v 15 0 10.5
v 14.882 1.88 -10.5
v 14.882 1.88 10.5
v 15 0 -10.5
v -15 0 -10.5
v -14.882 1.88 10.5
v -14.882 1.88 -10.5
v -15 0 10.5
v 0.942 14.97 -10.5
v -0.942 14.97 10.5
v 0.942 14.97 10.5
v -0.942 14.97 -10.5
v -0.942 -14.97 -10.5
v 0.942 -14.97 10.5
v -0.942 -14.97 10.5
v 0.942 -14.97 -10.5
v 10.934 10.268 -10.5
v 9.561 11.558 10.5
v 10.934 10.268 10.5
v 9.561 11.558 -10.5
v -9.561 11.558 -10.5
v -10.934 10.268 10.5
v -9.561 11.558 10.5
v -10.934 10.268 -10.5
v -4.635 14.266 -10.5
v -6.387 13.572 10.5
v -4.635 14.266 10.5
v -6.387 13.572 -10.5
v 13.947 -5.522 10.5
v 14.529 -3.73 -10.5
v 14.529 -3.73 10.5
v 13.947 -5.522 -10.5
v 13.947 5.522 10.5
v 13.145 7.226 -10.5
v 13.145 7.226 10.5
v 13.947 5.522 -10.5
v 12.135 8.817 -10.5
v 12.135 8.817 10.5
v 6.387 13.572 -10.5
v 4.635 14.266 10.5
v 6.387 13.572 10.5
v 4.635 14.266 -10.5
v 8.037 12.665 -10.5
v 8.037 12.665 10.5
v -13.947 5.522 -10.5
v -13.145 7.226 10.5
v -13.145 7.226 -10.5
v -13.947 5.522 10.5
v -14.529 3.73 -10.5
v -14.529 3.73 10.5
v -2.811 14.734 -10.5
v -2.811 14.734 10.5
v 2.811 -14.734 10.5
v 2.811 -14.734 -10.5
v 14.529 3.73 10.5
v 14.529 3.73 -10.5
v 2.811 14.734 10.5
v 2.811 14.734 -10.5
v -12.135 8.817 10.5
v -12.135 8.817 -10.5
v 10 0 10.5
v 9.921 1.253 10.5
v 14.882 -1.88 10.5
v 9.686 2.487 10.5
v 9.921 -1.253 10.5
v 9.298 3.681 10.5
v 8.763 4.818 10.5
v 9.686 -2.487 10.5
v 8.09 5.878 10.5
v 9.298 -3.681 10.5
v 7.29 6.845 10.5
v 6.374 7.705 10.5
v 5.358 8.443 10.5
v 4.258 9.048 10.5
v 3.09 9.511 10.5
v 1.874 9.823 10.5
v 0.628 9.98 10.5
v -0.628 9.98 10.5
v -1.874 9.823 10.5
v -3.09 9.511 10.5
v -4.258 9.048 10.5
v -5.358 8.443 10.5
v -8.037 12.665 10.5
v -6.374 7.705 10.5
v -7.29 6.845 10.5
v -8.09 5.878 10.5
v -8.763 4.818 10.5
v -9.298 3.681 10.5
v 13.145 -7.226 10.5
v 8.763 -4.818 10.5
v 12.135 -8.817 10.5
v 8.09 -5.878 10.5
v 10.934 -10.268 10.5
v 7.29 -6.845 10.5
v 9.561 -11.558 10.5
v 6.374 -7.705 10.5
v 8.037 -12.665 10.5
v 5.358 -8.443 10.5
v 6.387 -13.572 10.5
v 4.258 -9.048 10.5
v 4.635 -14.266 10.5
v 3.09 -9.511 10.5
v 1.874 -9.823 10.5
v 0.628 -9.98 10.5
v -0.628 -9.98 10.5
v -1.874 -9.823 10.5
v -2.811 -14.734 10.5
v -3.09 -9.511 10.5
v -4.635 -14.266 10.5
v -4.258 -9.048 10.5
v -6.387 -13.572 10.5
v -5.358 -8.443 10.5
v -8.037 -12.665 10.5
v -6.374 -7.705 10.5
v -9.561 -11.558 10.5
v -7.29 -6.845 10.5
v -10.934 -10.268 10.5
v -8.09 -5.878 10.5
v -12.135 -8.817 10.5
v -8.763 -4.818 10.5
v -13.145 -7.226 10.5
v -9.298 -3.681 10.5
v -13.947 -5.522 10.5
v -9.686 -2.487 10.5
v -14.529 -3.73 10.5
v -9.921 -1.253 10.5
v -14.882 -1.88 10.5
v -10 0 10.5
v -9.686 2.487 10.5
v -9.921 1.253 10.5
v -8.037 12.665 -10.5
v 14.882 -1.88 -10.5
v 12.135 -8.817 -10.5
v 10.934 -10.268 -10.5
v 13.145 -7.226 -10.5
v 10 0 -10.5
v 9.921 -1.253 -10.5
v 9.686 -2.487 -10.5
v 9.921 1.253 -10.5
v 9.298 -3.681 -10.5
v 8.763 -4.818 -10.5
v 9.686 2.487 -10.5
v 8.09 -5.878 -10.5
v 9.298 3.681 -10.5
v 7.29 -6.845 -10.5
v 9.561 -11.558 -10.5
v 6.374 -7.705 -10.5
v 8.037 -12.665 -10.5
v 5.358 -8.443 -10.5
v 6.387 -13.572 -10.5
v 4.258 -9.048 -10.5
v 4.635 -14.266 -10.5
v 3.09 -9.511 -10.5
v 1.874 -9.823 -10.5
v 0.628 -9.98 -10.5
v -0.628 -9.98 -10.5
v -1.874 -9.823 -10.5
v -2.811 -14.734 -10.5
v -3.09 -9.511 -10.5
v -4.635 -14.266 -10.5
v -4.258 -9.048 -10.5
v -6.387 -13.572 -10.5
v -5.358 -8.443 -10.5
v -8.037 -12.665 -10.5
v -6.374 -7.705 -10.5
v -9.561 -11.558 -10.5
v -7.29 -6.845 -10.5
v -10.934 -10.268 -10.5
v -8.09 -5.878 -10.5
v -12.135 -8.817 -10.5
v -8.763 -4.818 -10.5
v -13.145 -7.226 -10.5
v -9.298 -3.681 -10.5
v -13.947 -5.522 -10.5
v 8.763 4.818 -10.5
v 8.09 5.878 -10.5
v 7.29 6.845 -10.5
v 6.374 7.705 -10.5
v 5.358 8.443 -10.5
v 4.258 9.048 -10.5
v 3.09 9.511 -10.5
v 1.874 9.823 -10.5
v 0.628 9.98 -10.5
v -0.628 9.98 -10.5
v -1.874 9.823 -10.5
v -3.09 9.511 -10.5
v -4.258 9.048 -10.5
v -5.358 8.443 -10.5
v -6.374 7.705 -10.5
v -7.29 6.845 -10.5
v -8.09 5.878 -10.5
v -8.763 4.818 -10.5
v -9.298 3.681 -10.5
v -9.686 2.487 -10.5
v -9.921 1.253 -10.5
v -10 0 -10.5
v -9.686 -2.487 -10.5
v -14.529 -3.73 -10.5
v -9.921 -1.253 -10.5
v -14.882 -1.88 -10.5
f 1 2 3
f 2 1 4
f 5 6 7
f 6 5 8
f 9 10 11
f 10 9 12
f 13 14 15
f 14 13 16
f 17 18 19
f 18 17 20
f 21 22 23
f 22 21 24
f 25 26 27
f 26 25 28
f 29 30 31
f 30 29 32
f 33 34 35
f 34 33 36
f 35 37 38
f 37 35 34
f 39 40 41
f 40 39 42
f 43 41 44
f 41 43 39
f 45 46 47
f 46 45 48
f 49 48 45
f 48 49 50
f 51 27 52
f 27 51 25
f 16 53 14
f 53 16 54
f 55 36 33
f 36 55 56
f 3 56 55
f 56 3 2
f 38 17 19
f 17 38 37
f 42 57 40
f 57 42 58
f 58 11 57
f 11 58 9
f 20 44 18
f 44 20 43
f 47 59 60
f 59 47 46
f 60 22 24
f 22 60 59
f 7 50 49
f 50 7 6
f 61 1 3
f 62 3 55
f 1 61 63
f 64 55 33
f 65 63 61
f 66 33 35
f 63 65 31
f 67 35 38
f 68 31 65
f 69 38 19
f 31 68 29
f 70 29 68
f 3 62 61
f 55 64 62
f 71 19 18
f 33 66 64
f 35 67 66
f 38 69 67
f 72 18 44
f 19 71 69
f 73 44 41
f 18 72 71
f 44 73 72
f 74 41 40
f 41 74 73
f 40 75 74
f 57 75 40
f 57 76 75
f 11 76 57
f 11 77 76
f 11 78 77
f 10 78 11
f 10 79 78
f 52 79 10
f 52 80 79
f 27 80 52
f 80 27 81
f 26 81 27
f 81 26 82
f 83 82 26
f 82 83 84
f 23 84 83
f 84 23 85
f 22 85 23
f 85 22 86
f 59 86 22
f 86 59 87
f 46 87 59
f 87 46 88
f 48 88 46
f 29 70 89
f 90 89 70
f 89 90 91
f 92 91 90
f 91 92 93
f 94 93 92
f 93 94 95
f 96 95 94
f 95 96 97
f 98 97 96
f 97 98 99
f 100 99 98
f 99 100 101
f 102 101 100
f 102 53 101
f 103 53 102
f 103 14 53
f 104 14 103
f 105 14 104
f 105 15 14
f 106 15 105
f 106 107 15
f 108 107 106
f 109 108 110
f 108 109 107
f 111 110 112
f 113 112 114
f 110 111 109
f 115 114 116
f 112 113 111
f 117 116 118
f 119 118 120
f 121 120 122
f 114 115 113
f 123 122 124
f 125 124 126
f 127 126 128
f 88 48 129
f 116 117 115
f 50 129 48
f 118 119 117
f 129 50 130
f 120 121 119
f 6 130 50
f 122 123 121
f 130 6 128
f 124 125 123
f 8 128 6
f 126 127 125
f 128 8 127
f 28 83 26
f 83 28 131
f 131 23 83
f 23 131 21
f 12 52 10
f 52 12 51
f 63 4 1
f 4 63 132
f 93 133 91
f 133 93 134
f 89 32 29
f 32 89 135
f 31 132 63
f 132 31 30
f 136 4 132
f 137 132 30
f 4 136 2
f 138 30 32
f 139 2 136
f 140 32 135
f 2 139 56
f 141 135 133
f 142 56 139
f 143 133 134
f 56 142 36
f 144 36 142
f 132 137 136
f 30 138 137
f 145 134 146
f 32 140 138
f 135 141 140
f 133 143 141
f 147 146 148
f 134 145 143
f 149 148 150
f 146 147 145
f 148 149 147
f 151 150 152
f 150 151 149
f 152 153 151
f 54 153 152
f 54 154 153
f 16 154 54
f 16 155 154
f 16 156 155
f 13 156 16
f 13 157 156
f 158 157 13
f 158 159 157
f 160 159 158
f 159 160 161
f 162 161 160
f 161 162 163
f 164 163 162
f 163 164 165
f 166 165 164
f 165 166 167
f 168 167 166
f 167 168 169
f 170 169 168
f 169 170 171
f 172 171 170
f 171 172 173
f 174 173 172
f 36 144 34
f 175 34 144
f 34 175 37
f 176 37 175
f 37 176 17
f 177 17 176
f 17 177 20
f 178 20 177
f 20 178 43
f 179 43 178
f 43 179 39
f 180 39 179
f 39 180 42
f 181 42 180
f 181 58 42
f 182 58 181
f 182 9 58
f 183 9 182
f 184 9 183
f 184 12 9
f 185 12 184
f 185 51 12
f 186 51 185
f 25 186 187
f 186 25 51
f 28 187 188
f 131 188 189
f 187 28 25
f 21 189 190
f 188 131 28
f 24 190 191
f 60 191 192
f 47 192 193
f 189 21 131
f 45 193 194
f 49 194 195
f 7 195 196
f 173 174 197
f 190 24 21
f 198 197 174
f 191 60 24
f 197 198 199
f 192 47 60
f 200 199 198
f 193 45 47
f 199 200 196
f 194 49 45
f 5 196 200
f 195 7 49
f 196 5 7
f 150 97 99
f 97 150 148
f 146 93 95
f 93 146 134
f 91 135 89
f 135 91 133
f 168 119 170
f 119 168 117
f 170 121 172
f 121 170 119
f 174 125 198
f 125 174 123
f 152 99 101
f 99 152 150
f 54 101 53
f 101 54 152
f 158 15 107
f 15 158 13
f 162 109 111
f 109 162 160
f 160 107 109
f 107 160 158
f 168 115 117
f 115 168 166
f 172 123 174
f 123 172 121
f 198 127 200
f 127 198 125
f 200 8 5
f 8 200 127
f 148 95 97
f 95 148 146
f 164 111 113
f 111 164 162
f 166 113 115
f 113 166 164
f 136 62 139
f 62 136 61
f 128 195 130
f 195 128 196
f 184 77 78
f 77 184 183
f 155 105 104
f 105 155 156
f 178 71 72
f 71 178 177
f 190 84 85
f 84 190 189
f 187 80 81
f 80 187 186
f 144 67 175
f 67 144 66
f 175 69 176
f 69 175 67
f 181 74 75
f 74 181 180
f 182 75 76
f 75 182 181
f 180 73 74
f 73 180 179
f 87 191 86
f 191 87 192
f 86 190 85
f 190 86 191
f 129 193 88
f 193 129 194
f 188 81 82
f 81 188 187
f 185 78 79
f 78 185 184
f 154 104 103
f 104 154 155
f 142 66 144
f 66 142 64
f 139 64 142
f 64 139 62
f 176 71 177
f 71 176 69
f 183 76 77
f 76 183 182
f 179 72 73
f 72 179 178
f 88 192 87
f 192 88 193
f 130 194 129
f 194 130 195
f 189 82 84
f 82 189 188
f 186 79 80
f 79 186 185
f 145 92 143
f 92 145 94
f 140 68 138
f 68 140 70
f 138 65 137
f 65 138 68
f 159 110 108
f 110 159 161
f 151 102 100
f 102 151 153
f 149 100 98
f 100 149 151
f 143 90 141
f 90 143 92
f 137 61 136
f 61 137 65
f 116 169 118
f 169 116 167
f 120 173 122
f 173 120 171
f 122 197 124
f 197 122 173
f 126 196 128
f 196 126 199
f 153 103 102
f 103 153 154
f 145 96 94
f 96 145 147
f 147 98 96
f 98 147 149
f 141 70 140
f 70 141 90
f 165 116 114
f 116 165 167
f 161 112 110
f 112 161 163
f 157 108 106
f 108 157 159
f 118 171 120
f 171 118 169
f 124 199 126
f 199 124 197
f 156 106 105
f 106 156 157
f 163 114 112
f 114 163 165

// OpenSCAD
$fn = 50;


difference() {
	union() {
		translate(v = [0, 0, -10.5000000000]) {
			cylinder(h = 21, r = 15.0000000000);
		}
	}
	union() {
		translate(v = [0, 0, -100.0000000000]) {
			cylinder(h = 200, r = 10);
		}
	}
}
